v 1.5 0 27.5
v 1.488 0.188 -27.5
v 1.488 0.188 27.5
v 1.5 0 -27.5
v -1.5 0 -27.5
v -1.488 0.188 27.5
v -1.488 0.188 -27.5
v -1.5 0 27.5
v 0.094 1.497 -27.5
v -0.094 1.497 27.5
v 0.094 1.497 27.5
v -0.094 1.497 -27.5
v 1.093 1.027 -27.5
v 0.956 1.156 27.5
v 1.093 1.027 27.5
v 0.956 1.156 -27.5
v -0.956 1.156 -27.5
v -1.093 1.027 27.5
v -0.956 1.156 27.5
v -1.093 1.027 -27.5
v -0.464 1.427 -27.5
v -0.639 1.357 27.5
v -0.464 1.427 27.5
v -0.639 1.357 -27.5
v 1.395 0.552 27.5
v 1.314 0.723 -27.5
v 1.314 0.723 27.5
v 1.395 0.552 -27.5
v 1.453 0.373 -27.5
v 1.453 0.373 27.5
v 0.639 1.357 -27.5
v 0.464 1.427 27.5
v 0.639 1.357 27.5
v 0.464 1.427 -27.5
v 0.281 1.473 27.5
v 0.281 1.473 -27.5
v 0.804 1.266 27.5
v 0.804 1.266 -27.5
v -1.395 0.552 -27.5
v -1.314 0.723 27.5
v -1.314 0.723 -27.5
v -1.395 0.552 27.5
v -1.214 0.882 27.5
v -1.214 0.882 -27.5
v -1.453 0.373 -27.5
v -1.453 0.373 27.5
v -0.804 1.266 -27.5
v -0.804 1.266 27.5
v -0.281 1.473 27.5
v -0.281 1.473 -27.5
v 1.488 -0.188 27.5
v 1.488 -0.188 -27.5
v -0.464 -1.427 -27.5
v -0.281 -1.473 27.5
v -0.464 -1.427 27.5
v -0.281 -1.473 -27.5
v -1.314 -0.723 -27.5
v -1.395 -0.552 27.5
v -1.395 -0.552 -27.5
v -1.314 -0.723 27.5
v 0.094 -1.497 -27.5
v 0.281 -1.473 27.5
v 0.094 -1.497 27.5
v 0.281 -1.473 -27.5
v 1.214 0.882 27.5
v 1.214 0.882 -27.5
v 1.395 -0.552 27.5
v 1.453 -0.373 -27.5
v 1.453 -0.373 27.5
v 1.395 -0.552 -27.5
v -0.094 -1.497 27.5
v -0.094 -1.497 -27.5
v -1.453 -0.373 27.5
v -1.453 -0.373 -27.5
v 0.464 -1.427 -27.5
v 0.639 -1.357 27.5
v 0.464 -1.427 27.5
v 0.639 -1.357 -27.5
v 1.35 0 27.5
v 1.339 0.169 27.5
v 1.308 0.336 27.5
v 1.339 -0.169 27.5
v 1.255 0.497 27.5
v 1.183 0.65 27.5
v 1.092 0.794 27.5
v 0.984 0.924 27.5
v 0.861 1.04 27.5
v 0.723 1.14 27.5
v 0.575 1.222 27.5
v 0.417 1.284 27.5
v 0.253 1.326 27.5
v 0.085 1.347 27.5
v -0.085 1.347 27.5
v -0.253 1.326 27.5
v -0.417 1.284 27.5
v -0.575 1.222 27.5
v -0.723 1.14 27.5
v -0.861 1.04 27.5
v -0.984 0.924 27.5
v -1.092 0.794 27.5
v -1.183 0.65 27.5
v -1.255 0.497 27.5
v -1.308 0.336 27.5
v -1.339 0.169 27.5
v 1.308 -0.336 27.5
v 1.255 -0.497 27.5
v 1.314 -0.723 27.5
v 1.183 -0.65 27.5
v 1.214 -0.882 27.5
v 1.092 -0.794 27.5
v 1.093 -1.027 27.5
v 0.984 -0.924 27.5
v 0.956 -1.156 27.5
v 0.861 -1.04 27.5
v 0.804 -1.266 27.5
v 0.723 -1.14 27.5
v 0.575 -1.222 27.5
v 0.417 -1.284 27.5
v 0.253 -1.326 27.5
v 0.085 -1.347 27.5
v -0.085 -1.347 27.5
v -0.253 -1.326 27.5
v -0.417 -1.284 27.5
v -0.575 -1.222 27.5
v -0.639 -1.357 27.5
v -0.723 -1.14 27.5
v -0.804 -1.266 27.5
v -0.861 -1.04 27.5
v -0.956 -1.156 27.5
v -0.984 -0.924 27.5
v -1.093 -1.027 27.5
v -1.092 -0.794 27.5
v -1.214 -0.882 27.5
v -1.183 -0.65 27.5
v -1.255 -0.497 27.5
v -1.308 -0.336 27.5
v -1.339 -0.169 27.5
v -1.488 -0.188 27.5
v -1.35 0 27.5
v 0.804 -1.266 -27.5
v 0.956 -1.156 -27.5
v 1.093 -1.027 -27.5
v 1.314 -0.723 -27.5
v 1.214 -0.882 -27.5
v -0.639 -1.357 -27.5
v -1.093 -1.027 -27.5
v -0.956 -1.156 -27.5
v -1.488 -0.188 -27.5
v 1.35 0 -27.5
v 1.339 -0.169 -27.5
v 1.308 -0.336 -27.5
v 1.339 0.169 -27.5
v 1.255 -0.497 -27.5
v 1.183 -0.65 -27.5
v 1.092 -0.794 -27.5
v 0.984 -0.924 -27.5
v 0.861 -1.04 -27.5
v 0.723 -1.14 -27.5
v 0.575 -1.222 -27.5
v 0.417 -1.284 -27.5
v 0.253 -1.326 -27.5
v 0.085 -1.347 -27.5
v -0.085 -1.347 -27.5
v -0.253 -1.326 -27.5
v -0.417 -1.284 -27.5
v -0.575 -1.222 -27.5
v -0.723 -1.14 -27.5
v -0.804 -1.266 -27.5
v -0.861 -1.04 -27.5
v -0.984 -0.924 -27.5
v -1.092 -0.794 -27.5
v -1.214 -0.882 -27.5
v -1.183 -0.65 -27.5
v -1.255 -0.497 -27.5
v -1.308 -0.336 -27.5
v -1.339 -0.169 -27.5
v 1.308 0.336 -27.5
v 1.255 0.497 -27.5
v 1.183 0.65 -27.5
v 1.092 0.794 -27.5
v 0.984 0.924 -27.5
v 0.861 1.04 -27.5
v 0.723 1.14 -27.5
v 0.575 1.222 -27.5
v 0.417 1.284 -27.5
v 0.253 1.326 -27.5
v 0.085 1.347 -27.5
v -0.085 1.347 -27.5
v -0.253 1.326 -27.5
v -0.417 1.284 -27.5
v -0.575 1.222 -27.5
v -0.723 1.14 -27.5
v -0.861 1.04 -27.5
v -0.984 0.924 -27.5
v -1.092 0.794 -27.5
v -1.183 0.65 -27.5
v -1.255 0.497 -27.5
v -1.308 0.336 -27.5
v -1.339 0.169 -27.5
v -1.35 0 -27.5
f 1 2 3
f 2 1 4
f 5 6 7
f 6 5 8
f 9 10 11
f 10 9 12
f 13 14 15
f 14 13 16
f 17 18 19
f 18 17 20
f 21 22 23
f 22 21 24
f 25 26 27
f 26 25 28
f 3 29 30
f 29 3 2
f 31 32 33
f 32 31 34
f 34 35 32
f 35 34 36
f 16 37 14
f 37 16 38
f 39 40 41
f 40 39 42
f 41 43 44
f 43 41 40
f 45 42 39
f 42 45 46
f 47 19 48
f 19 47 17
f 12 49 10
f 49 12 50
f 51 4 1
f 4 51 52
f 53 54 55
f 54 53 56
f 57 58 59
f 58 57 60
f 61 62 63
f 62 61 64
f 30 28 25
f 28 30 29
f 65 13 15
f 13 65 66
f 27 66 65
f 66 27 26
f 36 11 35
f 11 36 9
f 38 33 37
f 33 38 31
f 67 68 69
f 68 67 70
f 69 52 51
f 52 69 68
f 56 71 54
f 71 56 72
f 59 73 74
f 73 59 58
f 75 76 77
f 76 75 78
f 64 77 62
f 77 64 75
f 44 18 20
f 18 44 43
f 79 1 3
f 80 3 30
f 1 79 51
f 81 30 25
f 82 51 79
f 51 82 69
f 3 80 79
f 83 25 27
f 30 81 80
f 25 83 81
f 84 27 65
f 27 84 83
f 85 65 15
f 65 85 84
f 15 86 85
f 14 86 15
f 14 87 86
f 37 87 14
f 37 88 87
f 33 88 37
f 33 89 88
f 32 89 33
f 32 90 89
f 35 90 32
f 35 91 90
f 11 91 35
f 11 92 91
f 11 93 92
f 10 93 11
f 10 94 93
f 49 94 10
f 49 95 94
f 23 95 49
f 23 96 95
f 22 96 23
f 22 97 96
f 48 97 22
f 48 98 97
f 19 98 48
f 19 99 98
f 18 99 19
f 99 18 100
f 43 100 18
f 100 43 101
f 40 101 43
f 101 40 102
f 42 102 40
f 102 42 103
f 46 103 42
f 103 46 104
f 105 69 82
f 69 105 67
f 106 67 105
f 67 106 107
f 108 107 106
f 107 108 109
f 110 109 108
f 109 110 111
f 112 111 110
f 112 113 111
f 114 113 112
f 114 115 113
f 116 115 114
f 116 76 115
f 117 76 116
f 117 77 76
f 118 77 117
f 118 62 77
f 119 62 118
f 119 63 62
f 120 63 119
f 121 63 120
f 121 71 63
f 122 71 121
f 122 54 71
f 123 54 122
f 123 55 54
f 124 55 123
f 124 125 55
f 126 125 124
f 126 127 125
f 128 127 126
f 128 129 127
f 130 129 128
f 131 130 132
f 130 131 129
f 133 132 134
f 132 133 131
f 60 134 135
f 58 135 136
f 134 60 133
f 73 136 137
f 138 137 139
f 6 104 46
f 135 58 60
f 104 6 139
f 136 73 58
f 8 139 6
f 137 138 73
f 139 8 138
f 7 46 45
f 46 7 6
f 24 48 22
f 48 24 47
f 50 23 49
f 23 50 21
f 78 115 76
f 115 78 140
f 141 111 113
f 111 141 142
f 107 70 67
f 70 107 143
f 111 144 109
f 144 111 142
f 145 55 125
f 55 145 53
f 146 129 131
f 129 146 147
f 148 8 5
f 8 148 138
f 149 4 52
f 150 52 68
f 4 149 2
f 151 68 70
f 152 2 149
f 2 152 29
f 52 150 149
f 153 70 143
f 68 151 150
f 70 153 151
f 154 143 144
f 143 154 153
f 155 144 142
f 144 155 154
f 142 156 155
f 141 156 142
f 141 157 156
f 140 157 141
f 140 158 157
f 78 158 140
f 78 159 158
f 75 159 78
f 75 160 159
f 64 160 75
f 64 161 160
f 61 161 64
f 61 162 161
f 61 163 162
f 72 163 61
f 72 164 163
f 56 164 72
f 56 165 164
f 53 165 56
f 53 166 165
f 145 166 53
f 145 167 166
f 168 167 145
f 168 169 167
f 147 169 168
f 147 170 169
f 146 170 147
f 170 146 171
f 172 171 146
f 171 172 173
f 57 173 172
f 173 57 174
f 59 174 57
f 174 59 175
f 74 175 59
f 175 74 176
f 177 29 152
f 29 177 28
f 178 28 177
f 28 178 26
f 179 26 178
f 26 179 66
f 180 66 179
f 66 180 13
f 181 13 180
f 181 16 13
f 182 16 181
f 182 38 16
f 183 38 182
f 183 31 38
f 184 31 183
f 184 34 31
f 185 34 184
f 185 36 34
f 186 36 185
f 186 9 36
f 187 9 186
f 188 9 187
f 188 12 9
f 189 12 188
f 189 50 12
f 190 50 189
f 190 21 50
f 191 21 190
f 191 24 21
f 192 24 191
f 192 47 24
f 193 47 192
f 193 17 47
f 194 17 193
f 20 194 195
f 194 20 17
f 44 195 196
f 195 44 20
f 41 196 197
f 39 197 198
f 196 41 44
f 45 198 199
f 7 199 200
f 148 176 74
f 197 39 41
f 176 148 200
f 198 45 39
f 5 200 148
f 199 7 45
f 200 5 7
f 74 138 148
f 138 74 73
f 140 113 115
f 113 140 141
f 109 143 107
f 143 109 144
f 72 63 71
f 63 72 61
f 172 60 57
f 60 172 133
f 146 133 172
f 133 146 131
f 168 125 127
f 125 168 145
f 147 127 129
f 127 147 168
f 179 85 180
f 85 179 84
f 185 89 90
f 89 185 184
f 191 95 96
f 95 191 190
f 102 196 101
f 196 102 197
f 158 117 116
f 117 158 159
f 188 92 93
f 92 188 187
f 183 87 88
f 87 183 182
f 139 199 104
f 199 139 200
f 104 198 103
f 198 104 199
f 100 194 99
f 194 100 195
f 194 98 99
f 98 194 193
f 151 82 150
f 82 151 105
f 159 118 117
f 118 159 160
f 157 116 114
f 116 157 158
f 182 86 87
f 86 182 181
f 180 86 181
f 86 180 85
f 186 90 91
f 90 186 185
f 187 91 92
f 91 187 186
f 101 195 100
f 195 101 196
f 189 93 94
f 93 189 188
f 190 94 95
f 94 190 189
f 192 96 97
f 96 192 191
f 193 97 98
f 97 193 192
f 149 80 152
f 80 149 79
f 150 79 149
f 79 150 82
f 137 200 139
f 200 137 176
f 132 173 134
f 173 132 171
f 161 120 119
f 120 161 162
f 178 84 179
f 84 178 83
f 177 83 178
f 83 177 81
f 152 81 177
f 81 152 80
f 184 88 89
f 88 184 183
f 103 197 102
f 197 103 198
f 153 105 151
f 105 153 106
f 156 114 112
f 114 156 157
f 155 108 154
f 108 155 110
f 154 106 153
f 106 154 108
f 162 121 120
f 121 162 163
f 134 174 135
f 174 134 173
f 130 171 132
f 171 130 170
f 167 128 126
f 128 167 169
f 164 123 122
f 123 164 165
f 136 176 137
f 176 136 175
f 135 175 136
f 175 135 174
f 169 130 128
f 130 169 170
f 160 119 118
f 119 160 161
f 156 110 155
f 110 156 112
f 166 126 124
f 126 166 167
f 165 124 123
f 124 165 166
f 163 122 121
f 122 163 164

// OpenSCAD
$fn = 50;


difference() {
	union() {
		translate(v = [0, 0, -27.5000000000]) {
			cylinder(h = 55, r = 1.5000000000);
		}
	}
	union() {
		translate(v = [0, 0, -100.0000000000]) {
			cylinder(h = 200, r = 1.3500000000);
		}
	}
}
